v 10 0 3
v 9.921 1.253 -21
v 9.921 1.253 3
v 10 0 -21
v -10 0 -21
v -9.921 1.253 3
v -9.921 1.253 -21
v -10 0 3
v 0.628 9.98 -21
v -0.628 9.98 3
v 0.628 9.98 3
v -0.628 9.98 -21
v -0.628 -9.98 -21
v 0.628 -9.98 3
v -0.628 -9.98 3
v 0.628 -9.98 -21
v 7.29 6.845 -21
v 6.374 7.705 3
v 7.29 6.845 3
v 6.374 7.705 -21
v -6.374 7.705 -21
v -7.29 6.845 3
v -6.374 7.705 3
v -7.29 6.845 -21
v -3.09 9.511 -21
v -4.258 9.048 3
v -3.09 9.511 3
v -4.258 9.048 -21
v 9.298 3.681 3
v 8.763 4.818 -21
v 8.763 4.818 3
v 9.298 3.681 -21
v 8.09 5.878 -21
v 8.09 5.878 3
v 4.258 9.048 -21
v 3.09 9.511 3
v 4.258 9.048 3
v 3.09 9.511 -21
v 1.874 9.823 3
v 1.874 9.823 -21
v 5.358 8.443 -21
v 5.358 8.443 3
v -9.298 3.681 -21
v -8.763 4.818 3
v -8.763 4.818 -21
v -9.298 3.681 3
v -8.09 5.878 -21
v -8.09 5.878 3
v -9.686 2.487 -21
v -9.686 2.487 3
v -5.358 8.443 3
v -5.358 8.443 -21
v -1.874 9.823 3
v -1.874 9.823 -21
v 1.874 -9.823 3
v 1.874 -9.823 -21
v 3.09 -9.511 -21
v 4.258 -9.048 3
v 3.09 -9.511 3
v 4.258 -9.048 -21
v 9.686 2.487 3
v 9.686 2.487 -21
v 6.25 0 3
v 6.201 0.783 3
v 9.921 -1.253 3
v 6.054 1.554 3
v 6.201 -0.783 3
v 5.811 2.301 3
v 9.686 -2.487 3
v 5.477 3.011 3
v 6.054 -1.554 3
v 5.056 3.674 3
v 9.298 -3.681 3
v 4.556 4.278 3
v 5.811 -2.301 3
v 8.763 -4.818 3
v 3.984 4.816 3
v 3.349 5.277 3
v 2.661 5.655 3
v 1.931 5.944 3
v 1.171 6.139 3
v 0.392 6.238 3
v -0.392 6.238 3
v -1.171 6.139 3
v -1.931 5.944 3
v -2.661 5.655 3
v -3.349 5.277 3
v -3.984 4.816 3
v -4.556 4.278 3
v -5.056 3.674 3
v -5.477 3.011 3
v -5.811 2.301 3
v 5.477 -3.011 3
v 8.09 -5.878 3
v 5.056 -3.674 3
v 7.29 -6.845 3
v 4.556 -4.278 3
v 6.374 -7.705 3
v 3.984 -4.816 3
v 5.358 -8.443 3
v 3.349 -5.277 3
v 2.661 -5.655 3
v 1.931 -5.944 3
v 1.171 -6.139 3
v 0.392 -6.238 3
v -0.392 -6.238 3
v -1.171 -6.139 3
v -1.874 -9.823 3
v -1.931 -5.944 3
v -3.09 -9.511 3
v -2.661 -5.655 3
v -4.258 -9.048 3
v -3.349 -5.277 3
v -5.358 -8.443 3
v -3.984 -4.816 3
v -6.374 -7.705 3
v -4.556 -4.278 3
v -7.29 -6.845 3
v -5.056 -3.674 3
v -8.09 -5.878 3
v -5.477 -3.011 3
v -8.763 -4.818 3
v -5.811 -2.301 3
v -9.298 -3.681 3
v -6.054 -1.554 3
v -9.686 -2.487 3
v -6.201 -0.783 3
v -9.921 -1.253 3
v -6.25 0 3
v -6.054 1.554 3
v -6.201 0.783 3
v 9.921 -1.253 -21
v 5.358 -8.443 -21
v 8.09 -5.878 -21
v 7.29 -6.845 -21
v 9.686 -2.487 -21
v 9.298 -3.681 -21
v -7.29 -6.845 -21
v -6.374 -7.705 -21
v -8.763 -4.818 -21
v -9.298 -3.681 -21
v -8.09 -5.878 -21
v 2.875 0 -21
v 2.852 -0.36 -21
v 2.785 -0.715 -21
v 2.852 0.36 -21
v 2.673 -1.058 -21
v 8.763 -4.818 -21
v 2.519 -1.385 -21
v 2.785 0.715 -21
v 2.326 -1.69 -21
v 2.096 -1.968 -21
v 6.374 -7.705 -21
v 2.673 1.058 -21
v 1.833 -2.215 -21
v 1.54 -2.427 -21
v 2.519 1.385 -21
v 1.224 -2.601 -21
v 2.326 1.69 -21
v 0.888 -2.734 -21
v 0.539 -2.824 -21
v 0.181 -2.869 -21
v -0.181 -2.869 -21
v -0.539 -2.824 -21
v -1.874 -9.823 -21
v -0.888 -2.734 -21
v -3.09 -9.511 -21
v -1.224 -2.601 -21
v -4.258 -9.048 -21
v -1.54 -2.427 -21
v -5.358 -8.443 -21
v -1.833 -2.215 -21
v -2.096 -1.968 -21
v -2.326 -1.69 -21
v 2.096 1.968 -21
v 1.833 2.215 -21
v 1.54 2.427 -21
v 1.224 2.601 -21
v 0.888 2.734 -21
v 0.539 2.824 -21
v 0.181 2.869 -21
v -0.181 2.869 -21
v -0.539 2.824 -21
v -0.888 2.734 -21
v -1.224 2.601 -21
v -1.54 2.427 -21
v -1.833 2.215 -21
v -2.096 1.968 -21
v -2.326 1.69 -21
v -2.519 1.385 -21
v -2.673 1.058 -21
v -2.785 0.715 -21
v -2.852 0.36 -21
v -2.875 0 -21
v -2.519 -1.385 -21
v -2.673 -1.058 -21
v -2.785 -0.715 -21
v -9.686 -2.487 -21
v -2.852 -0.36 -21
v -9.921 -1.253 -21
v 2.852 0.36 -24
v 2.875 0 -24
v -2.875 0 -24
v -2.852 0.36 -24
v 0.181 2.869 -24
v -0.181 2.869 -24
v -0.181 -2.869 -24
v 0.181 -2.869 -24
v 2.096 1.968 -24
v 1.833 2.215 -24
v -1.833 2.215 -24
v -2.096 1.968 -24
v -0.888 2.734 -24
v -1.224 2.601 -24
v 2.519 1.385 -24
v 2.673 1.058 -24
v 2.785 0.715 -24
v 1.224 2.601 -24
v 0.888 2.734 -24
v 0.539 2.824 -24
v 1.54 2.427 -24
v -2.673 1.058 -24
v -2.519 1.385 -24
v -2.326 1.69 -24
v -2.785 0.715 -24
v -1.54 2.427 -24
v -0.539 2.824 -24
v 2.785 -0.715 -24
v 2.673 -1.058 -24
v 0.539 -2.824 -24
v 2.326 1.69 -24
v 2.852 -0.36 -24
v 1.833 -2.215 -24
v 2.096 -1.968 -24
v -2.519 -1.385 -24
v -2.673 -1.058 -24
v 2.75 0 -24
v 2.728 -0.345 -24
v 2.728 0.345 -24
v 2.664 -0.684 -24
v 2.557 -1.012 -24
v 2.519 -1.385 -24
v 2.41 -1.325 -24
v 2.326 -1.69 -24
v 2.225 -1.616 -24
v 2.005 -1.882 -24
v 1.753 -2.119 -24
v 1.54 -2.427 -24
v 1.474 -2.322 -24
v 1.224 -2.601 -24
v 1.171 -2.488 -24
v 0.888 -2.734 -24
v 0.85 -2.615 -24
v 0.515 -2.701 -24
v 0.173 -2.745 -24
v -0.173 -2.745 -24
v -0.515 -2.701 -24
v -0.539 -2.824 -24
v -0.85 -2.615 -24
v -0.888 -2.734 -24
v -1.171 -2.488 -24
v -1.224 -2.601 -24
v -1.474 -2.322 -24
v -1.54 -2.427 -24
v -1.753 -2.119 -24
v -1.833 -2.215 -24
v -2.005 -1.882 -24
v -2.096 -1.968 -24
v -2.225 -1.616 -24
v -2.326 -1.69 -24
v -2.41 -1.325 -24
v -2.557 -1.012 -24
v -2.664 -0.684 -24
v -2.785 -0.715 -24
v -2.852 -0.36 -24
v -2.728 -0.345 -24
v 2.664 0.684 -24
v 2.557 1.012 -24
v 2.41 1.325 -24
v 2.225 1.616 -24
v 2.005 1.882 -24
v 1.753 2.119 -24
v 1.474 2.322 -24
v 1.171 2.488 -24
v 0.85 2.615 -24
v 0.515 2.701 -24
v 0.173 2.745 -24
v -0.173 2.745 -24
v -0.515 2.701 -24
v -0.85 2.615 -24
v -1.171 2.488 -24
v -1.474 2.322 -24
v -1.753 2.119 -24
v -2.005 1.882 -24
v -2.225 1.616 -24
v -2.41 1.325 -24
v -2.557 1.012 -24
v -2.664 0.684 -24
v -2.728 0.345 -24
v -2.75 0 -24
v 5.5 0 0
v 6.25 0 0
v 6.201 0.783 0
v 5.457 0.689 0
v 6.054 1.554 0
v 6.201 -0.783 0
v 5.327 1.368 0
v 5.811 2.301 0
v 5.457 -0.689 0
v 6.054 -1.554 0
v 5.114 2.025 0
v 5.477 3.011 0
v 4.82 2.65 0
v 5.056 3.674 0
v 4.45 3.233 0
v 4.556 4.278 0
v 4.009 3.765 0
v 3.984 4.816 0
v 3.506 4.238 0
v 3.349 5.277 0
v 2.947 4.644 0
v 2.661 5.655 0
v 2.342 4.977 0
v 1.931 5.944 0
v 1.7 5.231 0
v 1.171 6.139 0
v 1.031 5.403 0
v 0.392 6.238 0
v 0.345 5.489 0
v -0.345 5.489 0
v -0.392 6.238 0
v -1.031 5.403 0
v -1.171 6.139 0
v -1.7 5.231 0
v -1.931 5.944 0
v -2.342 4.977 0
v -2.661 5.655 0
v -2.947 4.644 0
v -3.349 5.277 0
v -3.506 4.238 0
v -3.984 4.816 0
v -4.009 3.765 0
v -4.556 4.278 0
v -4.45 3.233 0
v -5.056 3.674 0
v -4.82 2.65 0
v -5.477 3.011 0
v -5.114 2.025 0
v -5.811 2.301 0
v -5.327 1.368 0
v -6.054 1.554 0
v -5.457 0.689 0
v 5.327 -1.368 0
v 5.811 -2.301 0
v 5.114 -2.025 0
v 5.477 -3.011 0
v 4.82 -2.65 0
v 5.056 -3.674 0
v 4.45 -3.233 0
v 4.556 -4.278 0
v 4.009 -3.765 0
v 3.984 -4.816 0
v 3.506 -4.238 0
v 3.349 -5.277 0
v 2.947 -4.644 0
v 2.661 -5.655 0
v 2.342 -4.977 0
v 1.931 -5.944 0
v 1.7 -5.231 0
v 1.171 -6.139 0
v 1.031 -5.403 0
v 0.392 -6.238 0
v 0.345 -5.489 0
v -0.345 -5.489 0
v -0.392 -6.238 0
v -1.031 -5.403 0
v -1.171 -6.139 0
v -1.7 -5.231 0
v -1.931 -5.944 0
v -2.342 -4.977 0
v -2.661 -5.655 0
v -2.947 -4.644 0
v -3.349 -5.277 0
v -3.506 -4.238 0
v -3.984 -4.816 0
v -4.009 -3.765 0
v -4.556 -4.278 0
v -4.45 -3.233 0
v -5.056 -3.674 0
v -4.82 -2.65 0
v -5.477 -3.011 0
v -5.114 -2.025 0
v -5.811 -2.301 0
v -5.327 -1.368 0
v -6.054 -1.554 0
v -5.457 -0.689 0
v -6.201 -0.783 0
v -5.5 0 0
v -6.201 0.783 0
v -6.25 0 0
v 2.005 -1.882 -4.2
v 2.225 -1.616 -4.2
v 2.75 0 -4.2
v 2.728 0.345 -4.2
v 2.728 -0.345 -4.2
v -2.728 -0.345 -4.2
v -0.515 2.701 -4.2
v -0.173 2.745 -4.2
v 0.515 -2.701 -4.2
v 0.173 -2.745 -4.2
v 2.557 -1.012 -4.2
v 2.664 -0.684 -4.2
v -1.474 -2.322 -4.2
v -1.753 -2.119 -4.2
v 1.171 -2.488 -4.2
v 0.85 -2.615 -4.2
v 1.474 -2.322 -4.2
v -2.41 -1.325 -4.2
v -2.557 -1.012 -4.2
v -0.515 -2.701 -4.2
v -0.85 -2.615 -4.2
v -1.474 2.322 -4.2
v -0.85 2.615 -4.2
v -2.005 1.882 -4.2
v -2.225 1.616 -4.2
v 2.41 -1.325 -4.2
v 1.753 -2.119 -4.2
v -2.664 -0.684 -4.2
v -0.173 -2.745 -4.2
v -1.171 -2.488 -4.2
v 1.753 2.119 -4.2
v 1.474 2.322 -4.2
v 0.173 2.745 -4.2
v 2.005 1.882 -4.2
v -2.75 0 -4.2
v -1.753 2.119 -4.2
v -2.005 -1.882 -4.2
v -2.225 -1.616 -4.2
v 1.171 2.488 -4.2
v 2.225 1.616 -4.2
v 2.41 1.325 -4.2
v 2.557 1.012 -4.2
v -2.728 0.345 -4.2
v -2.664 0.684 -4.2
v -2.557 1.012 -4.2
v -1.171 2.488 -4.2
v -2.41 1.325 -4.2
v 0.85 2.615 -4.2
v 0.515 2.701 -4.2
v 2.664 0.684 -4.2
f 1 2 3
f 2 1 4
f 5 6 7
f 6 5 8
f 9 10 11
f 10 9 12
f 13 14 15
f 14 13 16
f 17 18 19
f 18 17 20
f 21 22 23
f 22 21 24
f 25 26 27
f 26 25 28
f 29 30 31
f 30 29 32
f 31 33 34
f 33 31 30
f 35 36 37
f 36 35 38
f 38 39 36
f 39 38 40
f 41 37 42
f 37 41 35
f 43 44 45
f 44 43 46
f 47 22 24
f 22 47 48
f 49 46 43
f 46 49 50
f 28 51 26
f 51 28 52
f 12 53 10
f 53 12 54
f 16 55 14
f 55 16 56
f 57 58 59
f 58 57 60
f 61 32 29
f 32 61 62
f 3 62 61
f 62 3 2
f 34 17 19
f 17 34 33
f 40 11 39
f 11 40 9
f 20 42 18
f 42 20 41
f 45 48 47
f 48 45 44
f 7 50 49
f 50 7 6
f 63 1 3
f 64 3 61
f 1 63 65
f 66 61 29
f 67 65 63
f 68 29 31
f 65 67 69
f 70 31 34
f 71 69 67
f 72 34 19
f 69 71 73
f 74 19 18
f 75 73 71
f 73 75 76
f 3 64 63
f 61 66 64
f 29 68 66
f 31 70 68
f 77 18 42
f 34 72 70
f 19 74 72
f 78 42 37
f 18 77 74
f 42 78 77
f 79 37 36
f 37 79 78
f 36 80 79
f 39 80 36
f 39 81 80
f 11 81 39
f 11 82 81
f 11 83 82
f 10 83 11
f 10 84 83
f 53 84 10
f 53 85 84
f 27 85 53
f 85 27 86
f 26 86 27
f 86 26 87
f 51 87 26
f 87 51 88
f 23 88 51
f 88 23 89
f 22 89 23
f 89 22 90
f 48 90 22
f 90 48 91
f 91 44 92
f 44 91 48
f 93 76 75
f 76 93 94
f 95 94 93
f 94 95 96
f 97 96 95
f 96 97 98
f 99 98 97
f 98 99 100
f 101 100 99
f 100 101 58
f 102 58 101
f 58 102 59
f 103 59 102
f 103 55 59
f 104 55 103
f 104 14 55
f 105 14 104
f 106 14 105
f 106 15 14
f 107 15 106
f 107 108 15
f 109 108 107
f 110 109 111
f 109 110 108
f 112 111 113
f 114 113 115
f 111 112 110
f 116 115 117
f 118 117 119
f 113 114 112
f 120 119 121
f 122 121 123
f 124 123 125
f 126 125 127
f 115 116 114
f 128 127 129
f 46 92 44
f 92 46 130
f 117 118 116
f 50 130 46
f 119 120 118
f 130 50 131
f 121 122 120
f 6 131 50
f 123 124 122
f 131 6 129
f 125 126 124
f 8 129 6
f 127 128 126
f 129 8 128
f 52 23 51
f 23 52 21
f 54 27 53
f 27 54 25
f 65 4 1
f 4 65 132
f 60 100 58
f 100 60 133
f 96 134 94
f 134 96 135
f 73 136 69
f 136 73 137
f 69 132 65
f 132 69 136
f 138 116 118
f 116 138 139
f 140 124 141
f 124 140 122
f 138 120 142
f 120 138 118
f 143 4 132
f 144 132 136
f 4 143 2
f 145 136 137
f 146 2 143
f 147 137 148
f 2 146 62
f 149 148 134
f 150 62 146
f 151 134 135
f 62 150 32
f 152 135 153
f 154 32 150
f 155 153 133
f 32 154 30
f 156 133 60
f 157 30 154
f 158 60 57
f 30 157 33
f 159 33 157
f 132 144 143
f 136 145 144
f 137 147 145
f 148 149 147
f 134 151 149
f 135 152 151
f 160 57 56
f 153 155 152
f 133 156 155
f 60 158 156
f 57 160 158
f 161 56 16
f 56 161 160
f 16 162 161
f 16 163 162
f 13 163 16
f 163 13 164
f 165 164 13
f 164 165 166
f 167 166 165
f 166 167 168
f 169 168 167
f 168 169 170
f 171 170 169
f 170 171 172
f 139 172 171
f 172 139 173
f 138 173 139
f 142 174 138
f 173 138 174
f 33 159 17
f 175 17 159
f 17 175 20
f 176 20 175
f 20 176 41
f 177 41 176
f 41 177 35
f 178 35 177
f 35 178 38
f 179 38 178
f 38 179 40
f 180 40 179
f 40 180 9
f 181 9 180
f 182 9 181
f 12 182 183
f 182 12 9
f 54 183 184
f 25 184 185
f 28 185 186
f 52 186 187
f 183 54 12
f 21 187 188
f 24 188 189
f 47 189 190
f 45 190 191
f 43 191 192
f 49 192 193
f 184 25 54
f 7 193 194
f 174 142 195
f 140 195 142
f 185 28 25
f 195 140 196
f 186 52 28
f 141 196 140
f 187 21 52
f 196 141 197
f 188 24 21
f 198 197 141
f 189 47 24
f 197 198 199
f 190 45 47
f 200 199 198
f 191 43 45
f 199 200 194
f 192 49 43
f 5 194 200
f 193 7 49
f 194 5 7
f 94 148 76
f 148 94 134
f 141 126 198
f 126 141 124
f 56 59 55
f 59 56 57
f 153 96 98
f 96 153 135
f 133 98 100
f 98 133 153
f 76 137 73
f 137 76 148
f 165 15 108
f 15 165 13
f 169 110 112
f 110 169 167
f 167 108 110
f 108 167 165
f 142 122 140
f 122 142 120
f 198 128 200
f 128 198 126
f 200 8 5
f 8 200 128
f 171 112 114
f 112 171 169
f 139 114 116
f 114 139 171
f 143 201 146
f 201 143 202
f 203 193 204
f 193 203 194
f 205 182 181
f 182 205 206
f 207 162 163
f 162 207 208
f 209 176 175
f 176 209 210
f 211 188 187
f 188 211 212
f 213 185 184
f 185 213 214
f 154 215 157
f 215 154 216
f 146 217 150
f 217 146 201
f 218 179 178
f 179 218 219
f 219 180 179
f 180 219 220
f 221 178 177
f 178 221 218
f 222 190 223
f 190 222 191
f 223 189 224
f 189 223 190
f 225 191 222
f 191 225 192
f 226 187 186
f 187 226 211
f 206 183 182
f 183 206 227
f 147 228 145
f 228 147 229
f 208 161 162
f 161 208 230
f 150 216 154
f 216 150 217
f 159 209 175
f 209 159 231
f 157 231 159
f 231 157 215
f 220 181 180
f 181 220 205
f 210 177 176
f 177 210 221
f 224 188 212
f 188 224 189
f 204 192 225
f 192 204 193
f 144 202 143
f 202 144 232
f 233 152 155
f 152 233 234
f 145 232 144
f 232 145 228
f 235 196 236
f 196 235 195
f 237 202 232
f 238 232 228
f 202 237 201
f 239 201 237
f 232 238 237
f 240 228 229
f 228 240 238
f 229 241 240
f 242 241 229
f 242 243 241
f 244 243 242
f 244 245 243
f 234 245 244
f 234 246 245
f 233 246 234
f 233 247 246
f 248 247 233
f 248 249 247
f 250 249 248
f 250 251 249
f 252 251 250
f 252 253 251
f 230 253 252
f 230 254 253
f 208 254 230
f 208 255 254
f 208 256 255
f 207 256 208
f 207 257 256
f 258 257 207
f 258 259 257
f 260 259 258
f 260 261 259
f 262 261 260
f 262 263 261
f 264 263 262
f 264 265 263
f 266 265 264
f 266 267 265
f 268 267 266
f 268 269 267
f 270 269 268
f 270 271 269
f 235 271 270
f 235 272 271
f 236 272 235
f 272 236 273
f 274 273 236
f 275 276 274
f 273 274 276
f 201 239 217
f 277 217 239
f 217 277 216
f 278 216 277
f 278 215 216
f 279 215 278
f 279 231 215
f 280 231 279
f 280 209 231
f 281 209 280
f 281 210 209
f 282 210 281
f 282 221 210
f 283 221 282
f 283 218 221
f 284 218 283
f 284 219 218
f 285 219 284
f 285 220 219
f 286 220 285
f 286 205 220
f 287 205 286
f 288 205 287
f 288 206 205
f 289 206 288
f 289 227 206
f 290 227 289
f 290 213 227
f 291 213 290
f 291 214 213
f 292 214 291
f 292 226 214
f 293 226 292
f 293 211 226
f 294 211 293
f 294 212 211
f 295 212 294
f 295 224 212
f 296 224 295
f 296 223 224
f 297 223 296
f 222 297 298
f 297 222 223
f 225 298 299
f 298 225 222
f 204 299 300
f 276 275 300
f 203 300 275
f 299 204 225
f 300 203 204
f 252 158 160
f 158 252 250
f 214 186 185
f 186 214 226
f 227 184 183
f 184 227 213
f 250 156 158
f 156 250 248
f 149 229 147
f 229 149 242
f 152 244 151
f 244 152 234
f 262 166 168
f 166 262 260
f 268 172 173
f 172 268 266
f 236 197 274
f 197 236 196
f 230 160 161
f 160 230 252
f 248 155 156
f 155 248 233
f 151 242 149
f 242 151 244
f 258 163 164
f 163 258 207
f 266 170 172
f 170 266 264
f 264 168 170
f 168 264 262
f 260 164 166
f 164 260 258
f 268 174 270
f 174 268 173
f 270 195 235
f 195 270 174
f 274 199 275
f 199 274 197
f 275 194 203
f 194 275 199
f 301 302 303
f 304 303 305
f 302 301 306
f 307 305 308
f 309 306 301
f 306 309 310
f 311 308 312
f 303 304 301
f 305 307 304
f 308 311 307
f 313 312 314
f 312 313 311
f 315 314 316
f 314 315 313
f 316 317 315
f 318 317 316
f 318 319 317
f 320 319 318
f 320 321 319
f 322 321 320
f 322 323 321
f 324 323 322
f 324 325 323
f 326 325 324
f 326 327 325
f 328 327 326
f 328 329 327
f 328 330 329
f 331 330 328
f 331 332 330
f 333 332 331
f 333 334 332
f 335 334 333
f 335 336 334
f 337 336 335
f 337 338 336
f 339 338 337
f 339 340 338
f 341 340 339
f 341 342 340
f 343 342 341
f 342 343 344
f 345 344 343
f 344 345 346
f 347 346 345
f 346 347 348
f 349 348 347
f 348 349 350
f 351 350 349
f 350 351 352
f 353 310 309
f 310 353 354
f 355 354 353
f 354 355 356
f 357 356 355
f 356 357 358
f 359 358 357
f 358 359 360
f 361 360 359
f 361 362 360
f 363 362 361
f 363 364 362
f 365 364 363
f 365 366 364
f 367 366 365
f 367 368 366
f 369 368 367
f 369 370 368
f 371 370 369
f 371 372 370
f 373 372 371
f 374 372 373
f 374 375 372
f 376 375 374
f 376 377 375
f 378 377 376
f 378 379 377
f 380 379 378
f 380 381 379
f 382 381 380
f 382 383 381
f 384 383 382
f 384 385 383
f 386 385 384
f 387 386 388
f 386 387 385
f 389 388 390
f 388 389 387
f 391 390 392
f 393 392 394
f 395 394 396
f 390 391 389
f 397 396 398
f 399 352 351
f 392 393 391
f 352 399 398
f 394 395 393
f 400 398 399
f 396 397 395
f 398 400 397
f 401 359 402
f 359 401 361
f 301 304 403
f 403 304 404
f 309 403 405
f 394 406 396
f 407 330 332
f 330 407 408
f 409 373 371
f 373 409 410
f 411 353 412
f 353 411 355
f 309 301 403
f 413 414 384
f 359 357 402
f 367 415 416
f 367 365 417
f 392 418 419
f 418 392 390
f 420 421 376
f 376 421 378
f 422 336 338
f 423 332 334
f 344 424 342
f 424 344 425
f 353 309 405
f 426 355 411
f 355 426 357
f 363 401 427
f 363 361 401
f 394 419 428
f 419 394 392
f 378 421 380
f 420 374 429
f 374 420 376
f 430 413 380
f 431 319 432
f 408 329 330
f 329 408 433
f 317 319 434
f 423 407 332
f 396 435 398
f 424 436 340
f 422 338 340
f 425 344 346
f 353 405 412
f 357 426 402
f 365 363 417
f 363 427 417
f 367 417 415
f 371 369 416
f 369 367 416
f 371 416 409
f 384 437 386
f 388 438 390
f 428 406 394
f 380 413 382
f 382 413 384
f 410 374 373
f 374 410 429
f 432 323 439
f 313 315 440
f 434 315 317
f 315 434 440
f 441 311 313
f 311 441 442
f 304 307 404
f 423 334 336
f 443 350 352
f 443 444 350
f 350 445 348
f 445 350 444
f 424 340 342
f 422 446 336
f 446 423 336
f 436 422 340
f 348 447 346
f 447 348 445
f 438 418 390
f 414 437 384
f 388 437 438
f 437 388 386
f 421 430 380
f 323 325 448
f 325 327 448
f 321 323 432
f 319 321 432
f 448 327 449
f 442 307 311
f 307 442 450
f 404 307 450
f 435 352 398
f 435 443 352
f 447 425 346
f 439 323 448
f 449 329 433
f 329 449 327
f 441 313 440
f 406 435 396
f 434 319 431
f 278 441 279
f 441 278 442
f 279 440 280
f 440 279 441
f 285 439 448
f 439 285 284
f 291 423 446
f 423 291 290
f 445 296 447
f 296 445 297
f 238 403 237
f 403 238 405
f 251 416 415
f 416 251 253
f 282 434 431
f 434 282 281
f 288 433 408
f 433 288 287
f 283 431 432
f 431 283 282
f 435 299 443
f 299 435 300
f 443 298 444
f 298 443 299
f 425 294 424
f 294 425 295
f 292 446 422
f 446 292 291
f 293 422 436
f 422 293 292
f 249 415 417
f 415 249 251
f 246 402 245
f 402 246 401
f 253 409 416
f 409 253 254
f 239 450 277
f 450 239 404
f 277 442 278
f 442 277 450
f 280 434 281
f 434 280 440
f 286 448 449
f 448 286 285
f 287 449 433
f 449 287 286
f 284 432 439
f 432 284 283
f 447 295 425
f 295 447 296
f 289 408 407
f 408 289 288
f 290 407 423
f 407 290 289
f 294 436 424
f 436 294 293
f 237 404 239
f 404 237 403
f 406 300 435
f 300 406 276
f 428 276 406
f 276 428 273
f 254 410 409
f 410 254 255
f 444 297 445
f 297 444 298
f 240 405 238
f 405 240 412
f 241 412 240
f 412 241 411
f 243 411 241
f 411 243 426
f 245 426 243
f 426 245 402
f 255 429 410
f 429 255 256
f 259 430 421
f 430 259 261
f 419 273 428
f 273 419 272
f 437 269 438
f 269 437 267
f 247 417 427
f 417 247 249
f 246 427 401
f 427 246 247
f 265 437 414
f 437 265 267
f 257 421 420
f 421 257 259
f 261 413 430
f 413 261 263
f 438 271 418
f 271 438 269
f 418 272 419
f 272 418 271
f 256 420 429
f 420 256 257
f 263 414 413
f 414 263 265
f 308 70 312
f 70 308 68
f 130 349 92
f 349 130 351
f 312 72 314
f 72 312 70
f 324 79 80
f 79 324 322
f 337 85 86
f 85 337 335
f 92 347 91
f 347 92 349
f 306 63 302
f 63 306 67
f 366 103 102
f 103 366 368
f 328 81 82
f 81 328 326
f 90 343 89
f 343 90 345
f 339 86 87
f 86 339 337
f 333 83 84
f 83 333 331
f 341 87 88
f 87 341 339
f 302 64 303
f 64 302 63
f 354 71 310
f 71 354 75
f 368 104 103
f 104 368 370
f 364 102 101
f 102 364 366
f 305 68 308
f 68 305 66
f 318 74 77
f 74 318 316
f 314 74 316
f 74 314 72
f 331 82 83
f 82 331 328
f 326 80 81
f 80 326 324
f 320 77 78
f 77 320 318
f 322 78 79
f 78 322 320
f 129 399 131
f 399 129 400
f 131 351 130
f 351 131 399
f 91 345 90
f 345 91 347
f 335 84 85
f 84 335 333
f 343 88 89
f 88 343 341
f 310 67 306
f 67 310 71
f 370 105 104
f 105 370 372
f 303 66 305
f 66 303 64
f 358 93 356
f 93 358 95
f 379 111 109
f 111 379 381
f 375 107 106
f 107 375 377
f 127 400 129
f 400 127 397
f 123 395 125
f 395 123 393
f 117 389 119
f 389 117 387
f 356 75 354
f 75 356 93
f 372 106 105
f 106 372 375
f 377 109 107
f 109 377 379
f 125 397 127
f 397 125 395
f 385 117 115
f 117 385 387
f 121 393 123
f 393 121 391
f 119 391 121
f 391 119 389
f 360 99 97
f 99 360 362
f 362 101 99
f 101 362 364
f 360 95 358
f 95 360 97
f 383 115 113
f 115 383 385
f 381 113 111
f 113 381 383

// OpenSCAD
$fn = 50;

difference() {
	union() {
		translate(v = [0, 0, -21.0]) {
			cylinder(h = 24, r = 10.0);
		}
		#translate(v = [0, 0, -24.0]) {
			cylinder(h = 24, r = 2.875);
		}
	}
	union() {
		translate(v = [0, 0, 0]) {
			rotate(a = [0, 0, 0]) {
				difference() {
					union() {
						translate(v = [0, 0, -24.0]) {
							cylinder(h = 24, r = 2.25);
						}
						translate(v = [0, 0, -4.2]) {
							cylinder(h = 4.2, r1 = 2.75, r2 = 5.5);
						}
						translate(v = [0, 0, -24.0]) {
							cylinder(h = 24, r = 2.75);
						}
						translate(v = [0, 0, -24.0]) {
							cylinder(h = 24, r = 2.25);
						}
					}
					union();
				}
			}
		}
		#cylinder(h = 3, r = 6.25);
	}
}
